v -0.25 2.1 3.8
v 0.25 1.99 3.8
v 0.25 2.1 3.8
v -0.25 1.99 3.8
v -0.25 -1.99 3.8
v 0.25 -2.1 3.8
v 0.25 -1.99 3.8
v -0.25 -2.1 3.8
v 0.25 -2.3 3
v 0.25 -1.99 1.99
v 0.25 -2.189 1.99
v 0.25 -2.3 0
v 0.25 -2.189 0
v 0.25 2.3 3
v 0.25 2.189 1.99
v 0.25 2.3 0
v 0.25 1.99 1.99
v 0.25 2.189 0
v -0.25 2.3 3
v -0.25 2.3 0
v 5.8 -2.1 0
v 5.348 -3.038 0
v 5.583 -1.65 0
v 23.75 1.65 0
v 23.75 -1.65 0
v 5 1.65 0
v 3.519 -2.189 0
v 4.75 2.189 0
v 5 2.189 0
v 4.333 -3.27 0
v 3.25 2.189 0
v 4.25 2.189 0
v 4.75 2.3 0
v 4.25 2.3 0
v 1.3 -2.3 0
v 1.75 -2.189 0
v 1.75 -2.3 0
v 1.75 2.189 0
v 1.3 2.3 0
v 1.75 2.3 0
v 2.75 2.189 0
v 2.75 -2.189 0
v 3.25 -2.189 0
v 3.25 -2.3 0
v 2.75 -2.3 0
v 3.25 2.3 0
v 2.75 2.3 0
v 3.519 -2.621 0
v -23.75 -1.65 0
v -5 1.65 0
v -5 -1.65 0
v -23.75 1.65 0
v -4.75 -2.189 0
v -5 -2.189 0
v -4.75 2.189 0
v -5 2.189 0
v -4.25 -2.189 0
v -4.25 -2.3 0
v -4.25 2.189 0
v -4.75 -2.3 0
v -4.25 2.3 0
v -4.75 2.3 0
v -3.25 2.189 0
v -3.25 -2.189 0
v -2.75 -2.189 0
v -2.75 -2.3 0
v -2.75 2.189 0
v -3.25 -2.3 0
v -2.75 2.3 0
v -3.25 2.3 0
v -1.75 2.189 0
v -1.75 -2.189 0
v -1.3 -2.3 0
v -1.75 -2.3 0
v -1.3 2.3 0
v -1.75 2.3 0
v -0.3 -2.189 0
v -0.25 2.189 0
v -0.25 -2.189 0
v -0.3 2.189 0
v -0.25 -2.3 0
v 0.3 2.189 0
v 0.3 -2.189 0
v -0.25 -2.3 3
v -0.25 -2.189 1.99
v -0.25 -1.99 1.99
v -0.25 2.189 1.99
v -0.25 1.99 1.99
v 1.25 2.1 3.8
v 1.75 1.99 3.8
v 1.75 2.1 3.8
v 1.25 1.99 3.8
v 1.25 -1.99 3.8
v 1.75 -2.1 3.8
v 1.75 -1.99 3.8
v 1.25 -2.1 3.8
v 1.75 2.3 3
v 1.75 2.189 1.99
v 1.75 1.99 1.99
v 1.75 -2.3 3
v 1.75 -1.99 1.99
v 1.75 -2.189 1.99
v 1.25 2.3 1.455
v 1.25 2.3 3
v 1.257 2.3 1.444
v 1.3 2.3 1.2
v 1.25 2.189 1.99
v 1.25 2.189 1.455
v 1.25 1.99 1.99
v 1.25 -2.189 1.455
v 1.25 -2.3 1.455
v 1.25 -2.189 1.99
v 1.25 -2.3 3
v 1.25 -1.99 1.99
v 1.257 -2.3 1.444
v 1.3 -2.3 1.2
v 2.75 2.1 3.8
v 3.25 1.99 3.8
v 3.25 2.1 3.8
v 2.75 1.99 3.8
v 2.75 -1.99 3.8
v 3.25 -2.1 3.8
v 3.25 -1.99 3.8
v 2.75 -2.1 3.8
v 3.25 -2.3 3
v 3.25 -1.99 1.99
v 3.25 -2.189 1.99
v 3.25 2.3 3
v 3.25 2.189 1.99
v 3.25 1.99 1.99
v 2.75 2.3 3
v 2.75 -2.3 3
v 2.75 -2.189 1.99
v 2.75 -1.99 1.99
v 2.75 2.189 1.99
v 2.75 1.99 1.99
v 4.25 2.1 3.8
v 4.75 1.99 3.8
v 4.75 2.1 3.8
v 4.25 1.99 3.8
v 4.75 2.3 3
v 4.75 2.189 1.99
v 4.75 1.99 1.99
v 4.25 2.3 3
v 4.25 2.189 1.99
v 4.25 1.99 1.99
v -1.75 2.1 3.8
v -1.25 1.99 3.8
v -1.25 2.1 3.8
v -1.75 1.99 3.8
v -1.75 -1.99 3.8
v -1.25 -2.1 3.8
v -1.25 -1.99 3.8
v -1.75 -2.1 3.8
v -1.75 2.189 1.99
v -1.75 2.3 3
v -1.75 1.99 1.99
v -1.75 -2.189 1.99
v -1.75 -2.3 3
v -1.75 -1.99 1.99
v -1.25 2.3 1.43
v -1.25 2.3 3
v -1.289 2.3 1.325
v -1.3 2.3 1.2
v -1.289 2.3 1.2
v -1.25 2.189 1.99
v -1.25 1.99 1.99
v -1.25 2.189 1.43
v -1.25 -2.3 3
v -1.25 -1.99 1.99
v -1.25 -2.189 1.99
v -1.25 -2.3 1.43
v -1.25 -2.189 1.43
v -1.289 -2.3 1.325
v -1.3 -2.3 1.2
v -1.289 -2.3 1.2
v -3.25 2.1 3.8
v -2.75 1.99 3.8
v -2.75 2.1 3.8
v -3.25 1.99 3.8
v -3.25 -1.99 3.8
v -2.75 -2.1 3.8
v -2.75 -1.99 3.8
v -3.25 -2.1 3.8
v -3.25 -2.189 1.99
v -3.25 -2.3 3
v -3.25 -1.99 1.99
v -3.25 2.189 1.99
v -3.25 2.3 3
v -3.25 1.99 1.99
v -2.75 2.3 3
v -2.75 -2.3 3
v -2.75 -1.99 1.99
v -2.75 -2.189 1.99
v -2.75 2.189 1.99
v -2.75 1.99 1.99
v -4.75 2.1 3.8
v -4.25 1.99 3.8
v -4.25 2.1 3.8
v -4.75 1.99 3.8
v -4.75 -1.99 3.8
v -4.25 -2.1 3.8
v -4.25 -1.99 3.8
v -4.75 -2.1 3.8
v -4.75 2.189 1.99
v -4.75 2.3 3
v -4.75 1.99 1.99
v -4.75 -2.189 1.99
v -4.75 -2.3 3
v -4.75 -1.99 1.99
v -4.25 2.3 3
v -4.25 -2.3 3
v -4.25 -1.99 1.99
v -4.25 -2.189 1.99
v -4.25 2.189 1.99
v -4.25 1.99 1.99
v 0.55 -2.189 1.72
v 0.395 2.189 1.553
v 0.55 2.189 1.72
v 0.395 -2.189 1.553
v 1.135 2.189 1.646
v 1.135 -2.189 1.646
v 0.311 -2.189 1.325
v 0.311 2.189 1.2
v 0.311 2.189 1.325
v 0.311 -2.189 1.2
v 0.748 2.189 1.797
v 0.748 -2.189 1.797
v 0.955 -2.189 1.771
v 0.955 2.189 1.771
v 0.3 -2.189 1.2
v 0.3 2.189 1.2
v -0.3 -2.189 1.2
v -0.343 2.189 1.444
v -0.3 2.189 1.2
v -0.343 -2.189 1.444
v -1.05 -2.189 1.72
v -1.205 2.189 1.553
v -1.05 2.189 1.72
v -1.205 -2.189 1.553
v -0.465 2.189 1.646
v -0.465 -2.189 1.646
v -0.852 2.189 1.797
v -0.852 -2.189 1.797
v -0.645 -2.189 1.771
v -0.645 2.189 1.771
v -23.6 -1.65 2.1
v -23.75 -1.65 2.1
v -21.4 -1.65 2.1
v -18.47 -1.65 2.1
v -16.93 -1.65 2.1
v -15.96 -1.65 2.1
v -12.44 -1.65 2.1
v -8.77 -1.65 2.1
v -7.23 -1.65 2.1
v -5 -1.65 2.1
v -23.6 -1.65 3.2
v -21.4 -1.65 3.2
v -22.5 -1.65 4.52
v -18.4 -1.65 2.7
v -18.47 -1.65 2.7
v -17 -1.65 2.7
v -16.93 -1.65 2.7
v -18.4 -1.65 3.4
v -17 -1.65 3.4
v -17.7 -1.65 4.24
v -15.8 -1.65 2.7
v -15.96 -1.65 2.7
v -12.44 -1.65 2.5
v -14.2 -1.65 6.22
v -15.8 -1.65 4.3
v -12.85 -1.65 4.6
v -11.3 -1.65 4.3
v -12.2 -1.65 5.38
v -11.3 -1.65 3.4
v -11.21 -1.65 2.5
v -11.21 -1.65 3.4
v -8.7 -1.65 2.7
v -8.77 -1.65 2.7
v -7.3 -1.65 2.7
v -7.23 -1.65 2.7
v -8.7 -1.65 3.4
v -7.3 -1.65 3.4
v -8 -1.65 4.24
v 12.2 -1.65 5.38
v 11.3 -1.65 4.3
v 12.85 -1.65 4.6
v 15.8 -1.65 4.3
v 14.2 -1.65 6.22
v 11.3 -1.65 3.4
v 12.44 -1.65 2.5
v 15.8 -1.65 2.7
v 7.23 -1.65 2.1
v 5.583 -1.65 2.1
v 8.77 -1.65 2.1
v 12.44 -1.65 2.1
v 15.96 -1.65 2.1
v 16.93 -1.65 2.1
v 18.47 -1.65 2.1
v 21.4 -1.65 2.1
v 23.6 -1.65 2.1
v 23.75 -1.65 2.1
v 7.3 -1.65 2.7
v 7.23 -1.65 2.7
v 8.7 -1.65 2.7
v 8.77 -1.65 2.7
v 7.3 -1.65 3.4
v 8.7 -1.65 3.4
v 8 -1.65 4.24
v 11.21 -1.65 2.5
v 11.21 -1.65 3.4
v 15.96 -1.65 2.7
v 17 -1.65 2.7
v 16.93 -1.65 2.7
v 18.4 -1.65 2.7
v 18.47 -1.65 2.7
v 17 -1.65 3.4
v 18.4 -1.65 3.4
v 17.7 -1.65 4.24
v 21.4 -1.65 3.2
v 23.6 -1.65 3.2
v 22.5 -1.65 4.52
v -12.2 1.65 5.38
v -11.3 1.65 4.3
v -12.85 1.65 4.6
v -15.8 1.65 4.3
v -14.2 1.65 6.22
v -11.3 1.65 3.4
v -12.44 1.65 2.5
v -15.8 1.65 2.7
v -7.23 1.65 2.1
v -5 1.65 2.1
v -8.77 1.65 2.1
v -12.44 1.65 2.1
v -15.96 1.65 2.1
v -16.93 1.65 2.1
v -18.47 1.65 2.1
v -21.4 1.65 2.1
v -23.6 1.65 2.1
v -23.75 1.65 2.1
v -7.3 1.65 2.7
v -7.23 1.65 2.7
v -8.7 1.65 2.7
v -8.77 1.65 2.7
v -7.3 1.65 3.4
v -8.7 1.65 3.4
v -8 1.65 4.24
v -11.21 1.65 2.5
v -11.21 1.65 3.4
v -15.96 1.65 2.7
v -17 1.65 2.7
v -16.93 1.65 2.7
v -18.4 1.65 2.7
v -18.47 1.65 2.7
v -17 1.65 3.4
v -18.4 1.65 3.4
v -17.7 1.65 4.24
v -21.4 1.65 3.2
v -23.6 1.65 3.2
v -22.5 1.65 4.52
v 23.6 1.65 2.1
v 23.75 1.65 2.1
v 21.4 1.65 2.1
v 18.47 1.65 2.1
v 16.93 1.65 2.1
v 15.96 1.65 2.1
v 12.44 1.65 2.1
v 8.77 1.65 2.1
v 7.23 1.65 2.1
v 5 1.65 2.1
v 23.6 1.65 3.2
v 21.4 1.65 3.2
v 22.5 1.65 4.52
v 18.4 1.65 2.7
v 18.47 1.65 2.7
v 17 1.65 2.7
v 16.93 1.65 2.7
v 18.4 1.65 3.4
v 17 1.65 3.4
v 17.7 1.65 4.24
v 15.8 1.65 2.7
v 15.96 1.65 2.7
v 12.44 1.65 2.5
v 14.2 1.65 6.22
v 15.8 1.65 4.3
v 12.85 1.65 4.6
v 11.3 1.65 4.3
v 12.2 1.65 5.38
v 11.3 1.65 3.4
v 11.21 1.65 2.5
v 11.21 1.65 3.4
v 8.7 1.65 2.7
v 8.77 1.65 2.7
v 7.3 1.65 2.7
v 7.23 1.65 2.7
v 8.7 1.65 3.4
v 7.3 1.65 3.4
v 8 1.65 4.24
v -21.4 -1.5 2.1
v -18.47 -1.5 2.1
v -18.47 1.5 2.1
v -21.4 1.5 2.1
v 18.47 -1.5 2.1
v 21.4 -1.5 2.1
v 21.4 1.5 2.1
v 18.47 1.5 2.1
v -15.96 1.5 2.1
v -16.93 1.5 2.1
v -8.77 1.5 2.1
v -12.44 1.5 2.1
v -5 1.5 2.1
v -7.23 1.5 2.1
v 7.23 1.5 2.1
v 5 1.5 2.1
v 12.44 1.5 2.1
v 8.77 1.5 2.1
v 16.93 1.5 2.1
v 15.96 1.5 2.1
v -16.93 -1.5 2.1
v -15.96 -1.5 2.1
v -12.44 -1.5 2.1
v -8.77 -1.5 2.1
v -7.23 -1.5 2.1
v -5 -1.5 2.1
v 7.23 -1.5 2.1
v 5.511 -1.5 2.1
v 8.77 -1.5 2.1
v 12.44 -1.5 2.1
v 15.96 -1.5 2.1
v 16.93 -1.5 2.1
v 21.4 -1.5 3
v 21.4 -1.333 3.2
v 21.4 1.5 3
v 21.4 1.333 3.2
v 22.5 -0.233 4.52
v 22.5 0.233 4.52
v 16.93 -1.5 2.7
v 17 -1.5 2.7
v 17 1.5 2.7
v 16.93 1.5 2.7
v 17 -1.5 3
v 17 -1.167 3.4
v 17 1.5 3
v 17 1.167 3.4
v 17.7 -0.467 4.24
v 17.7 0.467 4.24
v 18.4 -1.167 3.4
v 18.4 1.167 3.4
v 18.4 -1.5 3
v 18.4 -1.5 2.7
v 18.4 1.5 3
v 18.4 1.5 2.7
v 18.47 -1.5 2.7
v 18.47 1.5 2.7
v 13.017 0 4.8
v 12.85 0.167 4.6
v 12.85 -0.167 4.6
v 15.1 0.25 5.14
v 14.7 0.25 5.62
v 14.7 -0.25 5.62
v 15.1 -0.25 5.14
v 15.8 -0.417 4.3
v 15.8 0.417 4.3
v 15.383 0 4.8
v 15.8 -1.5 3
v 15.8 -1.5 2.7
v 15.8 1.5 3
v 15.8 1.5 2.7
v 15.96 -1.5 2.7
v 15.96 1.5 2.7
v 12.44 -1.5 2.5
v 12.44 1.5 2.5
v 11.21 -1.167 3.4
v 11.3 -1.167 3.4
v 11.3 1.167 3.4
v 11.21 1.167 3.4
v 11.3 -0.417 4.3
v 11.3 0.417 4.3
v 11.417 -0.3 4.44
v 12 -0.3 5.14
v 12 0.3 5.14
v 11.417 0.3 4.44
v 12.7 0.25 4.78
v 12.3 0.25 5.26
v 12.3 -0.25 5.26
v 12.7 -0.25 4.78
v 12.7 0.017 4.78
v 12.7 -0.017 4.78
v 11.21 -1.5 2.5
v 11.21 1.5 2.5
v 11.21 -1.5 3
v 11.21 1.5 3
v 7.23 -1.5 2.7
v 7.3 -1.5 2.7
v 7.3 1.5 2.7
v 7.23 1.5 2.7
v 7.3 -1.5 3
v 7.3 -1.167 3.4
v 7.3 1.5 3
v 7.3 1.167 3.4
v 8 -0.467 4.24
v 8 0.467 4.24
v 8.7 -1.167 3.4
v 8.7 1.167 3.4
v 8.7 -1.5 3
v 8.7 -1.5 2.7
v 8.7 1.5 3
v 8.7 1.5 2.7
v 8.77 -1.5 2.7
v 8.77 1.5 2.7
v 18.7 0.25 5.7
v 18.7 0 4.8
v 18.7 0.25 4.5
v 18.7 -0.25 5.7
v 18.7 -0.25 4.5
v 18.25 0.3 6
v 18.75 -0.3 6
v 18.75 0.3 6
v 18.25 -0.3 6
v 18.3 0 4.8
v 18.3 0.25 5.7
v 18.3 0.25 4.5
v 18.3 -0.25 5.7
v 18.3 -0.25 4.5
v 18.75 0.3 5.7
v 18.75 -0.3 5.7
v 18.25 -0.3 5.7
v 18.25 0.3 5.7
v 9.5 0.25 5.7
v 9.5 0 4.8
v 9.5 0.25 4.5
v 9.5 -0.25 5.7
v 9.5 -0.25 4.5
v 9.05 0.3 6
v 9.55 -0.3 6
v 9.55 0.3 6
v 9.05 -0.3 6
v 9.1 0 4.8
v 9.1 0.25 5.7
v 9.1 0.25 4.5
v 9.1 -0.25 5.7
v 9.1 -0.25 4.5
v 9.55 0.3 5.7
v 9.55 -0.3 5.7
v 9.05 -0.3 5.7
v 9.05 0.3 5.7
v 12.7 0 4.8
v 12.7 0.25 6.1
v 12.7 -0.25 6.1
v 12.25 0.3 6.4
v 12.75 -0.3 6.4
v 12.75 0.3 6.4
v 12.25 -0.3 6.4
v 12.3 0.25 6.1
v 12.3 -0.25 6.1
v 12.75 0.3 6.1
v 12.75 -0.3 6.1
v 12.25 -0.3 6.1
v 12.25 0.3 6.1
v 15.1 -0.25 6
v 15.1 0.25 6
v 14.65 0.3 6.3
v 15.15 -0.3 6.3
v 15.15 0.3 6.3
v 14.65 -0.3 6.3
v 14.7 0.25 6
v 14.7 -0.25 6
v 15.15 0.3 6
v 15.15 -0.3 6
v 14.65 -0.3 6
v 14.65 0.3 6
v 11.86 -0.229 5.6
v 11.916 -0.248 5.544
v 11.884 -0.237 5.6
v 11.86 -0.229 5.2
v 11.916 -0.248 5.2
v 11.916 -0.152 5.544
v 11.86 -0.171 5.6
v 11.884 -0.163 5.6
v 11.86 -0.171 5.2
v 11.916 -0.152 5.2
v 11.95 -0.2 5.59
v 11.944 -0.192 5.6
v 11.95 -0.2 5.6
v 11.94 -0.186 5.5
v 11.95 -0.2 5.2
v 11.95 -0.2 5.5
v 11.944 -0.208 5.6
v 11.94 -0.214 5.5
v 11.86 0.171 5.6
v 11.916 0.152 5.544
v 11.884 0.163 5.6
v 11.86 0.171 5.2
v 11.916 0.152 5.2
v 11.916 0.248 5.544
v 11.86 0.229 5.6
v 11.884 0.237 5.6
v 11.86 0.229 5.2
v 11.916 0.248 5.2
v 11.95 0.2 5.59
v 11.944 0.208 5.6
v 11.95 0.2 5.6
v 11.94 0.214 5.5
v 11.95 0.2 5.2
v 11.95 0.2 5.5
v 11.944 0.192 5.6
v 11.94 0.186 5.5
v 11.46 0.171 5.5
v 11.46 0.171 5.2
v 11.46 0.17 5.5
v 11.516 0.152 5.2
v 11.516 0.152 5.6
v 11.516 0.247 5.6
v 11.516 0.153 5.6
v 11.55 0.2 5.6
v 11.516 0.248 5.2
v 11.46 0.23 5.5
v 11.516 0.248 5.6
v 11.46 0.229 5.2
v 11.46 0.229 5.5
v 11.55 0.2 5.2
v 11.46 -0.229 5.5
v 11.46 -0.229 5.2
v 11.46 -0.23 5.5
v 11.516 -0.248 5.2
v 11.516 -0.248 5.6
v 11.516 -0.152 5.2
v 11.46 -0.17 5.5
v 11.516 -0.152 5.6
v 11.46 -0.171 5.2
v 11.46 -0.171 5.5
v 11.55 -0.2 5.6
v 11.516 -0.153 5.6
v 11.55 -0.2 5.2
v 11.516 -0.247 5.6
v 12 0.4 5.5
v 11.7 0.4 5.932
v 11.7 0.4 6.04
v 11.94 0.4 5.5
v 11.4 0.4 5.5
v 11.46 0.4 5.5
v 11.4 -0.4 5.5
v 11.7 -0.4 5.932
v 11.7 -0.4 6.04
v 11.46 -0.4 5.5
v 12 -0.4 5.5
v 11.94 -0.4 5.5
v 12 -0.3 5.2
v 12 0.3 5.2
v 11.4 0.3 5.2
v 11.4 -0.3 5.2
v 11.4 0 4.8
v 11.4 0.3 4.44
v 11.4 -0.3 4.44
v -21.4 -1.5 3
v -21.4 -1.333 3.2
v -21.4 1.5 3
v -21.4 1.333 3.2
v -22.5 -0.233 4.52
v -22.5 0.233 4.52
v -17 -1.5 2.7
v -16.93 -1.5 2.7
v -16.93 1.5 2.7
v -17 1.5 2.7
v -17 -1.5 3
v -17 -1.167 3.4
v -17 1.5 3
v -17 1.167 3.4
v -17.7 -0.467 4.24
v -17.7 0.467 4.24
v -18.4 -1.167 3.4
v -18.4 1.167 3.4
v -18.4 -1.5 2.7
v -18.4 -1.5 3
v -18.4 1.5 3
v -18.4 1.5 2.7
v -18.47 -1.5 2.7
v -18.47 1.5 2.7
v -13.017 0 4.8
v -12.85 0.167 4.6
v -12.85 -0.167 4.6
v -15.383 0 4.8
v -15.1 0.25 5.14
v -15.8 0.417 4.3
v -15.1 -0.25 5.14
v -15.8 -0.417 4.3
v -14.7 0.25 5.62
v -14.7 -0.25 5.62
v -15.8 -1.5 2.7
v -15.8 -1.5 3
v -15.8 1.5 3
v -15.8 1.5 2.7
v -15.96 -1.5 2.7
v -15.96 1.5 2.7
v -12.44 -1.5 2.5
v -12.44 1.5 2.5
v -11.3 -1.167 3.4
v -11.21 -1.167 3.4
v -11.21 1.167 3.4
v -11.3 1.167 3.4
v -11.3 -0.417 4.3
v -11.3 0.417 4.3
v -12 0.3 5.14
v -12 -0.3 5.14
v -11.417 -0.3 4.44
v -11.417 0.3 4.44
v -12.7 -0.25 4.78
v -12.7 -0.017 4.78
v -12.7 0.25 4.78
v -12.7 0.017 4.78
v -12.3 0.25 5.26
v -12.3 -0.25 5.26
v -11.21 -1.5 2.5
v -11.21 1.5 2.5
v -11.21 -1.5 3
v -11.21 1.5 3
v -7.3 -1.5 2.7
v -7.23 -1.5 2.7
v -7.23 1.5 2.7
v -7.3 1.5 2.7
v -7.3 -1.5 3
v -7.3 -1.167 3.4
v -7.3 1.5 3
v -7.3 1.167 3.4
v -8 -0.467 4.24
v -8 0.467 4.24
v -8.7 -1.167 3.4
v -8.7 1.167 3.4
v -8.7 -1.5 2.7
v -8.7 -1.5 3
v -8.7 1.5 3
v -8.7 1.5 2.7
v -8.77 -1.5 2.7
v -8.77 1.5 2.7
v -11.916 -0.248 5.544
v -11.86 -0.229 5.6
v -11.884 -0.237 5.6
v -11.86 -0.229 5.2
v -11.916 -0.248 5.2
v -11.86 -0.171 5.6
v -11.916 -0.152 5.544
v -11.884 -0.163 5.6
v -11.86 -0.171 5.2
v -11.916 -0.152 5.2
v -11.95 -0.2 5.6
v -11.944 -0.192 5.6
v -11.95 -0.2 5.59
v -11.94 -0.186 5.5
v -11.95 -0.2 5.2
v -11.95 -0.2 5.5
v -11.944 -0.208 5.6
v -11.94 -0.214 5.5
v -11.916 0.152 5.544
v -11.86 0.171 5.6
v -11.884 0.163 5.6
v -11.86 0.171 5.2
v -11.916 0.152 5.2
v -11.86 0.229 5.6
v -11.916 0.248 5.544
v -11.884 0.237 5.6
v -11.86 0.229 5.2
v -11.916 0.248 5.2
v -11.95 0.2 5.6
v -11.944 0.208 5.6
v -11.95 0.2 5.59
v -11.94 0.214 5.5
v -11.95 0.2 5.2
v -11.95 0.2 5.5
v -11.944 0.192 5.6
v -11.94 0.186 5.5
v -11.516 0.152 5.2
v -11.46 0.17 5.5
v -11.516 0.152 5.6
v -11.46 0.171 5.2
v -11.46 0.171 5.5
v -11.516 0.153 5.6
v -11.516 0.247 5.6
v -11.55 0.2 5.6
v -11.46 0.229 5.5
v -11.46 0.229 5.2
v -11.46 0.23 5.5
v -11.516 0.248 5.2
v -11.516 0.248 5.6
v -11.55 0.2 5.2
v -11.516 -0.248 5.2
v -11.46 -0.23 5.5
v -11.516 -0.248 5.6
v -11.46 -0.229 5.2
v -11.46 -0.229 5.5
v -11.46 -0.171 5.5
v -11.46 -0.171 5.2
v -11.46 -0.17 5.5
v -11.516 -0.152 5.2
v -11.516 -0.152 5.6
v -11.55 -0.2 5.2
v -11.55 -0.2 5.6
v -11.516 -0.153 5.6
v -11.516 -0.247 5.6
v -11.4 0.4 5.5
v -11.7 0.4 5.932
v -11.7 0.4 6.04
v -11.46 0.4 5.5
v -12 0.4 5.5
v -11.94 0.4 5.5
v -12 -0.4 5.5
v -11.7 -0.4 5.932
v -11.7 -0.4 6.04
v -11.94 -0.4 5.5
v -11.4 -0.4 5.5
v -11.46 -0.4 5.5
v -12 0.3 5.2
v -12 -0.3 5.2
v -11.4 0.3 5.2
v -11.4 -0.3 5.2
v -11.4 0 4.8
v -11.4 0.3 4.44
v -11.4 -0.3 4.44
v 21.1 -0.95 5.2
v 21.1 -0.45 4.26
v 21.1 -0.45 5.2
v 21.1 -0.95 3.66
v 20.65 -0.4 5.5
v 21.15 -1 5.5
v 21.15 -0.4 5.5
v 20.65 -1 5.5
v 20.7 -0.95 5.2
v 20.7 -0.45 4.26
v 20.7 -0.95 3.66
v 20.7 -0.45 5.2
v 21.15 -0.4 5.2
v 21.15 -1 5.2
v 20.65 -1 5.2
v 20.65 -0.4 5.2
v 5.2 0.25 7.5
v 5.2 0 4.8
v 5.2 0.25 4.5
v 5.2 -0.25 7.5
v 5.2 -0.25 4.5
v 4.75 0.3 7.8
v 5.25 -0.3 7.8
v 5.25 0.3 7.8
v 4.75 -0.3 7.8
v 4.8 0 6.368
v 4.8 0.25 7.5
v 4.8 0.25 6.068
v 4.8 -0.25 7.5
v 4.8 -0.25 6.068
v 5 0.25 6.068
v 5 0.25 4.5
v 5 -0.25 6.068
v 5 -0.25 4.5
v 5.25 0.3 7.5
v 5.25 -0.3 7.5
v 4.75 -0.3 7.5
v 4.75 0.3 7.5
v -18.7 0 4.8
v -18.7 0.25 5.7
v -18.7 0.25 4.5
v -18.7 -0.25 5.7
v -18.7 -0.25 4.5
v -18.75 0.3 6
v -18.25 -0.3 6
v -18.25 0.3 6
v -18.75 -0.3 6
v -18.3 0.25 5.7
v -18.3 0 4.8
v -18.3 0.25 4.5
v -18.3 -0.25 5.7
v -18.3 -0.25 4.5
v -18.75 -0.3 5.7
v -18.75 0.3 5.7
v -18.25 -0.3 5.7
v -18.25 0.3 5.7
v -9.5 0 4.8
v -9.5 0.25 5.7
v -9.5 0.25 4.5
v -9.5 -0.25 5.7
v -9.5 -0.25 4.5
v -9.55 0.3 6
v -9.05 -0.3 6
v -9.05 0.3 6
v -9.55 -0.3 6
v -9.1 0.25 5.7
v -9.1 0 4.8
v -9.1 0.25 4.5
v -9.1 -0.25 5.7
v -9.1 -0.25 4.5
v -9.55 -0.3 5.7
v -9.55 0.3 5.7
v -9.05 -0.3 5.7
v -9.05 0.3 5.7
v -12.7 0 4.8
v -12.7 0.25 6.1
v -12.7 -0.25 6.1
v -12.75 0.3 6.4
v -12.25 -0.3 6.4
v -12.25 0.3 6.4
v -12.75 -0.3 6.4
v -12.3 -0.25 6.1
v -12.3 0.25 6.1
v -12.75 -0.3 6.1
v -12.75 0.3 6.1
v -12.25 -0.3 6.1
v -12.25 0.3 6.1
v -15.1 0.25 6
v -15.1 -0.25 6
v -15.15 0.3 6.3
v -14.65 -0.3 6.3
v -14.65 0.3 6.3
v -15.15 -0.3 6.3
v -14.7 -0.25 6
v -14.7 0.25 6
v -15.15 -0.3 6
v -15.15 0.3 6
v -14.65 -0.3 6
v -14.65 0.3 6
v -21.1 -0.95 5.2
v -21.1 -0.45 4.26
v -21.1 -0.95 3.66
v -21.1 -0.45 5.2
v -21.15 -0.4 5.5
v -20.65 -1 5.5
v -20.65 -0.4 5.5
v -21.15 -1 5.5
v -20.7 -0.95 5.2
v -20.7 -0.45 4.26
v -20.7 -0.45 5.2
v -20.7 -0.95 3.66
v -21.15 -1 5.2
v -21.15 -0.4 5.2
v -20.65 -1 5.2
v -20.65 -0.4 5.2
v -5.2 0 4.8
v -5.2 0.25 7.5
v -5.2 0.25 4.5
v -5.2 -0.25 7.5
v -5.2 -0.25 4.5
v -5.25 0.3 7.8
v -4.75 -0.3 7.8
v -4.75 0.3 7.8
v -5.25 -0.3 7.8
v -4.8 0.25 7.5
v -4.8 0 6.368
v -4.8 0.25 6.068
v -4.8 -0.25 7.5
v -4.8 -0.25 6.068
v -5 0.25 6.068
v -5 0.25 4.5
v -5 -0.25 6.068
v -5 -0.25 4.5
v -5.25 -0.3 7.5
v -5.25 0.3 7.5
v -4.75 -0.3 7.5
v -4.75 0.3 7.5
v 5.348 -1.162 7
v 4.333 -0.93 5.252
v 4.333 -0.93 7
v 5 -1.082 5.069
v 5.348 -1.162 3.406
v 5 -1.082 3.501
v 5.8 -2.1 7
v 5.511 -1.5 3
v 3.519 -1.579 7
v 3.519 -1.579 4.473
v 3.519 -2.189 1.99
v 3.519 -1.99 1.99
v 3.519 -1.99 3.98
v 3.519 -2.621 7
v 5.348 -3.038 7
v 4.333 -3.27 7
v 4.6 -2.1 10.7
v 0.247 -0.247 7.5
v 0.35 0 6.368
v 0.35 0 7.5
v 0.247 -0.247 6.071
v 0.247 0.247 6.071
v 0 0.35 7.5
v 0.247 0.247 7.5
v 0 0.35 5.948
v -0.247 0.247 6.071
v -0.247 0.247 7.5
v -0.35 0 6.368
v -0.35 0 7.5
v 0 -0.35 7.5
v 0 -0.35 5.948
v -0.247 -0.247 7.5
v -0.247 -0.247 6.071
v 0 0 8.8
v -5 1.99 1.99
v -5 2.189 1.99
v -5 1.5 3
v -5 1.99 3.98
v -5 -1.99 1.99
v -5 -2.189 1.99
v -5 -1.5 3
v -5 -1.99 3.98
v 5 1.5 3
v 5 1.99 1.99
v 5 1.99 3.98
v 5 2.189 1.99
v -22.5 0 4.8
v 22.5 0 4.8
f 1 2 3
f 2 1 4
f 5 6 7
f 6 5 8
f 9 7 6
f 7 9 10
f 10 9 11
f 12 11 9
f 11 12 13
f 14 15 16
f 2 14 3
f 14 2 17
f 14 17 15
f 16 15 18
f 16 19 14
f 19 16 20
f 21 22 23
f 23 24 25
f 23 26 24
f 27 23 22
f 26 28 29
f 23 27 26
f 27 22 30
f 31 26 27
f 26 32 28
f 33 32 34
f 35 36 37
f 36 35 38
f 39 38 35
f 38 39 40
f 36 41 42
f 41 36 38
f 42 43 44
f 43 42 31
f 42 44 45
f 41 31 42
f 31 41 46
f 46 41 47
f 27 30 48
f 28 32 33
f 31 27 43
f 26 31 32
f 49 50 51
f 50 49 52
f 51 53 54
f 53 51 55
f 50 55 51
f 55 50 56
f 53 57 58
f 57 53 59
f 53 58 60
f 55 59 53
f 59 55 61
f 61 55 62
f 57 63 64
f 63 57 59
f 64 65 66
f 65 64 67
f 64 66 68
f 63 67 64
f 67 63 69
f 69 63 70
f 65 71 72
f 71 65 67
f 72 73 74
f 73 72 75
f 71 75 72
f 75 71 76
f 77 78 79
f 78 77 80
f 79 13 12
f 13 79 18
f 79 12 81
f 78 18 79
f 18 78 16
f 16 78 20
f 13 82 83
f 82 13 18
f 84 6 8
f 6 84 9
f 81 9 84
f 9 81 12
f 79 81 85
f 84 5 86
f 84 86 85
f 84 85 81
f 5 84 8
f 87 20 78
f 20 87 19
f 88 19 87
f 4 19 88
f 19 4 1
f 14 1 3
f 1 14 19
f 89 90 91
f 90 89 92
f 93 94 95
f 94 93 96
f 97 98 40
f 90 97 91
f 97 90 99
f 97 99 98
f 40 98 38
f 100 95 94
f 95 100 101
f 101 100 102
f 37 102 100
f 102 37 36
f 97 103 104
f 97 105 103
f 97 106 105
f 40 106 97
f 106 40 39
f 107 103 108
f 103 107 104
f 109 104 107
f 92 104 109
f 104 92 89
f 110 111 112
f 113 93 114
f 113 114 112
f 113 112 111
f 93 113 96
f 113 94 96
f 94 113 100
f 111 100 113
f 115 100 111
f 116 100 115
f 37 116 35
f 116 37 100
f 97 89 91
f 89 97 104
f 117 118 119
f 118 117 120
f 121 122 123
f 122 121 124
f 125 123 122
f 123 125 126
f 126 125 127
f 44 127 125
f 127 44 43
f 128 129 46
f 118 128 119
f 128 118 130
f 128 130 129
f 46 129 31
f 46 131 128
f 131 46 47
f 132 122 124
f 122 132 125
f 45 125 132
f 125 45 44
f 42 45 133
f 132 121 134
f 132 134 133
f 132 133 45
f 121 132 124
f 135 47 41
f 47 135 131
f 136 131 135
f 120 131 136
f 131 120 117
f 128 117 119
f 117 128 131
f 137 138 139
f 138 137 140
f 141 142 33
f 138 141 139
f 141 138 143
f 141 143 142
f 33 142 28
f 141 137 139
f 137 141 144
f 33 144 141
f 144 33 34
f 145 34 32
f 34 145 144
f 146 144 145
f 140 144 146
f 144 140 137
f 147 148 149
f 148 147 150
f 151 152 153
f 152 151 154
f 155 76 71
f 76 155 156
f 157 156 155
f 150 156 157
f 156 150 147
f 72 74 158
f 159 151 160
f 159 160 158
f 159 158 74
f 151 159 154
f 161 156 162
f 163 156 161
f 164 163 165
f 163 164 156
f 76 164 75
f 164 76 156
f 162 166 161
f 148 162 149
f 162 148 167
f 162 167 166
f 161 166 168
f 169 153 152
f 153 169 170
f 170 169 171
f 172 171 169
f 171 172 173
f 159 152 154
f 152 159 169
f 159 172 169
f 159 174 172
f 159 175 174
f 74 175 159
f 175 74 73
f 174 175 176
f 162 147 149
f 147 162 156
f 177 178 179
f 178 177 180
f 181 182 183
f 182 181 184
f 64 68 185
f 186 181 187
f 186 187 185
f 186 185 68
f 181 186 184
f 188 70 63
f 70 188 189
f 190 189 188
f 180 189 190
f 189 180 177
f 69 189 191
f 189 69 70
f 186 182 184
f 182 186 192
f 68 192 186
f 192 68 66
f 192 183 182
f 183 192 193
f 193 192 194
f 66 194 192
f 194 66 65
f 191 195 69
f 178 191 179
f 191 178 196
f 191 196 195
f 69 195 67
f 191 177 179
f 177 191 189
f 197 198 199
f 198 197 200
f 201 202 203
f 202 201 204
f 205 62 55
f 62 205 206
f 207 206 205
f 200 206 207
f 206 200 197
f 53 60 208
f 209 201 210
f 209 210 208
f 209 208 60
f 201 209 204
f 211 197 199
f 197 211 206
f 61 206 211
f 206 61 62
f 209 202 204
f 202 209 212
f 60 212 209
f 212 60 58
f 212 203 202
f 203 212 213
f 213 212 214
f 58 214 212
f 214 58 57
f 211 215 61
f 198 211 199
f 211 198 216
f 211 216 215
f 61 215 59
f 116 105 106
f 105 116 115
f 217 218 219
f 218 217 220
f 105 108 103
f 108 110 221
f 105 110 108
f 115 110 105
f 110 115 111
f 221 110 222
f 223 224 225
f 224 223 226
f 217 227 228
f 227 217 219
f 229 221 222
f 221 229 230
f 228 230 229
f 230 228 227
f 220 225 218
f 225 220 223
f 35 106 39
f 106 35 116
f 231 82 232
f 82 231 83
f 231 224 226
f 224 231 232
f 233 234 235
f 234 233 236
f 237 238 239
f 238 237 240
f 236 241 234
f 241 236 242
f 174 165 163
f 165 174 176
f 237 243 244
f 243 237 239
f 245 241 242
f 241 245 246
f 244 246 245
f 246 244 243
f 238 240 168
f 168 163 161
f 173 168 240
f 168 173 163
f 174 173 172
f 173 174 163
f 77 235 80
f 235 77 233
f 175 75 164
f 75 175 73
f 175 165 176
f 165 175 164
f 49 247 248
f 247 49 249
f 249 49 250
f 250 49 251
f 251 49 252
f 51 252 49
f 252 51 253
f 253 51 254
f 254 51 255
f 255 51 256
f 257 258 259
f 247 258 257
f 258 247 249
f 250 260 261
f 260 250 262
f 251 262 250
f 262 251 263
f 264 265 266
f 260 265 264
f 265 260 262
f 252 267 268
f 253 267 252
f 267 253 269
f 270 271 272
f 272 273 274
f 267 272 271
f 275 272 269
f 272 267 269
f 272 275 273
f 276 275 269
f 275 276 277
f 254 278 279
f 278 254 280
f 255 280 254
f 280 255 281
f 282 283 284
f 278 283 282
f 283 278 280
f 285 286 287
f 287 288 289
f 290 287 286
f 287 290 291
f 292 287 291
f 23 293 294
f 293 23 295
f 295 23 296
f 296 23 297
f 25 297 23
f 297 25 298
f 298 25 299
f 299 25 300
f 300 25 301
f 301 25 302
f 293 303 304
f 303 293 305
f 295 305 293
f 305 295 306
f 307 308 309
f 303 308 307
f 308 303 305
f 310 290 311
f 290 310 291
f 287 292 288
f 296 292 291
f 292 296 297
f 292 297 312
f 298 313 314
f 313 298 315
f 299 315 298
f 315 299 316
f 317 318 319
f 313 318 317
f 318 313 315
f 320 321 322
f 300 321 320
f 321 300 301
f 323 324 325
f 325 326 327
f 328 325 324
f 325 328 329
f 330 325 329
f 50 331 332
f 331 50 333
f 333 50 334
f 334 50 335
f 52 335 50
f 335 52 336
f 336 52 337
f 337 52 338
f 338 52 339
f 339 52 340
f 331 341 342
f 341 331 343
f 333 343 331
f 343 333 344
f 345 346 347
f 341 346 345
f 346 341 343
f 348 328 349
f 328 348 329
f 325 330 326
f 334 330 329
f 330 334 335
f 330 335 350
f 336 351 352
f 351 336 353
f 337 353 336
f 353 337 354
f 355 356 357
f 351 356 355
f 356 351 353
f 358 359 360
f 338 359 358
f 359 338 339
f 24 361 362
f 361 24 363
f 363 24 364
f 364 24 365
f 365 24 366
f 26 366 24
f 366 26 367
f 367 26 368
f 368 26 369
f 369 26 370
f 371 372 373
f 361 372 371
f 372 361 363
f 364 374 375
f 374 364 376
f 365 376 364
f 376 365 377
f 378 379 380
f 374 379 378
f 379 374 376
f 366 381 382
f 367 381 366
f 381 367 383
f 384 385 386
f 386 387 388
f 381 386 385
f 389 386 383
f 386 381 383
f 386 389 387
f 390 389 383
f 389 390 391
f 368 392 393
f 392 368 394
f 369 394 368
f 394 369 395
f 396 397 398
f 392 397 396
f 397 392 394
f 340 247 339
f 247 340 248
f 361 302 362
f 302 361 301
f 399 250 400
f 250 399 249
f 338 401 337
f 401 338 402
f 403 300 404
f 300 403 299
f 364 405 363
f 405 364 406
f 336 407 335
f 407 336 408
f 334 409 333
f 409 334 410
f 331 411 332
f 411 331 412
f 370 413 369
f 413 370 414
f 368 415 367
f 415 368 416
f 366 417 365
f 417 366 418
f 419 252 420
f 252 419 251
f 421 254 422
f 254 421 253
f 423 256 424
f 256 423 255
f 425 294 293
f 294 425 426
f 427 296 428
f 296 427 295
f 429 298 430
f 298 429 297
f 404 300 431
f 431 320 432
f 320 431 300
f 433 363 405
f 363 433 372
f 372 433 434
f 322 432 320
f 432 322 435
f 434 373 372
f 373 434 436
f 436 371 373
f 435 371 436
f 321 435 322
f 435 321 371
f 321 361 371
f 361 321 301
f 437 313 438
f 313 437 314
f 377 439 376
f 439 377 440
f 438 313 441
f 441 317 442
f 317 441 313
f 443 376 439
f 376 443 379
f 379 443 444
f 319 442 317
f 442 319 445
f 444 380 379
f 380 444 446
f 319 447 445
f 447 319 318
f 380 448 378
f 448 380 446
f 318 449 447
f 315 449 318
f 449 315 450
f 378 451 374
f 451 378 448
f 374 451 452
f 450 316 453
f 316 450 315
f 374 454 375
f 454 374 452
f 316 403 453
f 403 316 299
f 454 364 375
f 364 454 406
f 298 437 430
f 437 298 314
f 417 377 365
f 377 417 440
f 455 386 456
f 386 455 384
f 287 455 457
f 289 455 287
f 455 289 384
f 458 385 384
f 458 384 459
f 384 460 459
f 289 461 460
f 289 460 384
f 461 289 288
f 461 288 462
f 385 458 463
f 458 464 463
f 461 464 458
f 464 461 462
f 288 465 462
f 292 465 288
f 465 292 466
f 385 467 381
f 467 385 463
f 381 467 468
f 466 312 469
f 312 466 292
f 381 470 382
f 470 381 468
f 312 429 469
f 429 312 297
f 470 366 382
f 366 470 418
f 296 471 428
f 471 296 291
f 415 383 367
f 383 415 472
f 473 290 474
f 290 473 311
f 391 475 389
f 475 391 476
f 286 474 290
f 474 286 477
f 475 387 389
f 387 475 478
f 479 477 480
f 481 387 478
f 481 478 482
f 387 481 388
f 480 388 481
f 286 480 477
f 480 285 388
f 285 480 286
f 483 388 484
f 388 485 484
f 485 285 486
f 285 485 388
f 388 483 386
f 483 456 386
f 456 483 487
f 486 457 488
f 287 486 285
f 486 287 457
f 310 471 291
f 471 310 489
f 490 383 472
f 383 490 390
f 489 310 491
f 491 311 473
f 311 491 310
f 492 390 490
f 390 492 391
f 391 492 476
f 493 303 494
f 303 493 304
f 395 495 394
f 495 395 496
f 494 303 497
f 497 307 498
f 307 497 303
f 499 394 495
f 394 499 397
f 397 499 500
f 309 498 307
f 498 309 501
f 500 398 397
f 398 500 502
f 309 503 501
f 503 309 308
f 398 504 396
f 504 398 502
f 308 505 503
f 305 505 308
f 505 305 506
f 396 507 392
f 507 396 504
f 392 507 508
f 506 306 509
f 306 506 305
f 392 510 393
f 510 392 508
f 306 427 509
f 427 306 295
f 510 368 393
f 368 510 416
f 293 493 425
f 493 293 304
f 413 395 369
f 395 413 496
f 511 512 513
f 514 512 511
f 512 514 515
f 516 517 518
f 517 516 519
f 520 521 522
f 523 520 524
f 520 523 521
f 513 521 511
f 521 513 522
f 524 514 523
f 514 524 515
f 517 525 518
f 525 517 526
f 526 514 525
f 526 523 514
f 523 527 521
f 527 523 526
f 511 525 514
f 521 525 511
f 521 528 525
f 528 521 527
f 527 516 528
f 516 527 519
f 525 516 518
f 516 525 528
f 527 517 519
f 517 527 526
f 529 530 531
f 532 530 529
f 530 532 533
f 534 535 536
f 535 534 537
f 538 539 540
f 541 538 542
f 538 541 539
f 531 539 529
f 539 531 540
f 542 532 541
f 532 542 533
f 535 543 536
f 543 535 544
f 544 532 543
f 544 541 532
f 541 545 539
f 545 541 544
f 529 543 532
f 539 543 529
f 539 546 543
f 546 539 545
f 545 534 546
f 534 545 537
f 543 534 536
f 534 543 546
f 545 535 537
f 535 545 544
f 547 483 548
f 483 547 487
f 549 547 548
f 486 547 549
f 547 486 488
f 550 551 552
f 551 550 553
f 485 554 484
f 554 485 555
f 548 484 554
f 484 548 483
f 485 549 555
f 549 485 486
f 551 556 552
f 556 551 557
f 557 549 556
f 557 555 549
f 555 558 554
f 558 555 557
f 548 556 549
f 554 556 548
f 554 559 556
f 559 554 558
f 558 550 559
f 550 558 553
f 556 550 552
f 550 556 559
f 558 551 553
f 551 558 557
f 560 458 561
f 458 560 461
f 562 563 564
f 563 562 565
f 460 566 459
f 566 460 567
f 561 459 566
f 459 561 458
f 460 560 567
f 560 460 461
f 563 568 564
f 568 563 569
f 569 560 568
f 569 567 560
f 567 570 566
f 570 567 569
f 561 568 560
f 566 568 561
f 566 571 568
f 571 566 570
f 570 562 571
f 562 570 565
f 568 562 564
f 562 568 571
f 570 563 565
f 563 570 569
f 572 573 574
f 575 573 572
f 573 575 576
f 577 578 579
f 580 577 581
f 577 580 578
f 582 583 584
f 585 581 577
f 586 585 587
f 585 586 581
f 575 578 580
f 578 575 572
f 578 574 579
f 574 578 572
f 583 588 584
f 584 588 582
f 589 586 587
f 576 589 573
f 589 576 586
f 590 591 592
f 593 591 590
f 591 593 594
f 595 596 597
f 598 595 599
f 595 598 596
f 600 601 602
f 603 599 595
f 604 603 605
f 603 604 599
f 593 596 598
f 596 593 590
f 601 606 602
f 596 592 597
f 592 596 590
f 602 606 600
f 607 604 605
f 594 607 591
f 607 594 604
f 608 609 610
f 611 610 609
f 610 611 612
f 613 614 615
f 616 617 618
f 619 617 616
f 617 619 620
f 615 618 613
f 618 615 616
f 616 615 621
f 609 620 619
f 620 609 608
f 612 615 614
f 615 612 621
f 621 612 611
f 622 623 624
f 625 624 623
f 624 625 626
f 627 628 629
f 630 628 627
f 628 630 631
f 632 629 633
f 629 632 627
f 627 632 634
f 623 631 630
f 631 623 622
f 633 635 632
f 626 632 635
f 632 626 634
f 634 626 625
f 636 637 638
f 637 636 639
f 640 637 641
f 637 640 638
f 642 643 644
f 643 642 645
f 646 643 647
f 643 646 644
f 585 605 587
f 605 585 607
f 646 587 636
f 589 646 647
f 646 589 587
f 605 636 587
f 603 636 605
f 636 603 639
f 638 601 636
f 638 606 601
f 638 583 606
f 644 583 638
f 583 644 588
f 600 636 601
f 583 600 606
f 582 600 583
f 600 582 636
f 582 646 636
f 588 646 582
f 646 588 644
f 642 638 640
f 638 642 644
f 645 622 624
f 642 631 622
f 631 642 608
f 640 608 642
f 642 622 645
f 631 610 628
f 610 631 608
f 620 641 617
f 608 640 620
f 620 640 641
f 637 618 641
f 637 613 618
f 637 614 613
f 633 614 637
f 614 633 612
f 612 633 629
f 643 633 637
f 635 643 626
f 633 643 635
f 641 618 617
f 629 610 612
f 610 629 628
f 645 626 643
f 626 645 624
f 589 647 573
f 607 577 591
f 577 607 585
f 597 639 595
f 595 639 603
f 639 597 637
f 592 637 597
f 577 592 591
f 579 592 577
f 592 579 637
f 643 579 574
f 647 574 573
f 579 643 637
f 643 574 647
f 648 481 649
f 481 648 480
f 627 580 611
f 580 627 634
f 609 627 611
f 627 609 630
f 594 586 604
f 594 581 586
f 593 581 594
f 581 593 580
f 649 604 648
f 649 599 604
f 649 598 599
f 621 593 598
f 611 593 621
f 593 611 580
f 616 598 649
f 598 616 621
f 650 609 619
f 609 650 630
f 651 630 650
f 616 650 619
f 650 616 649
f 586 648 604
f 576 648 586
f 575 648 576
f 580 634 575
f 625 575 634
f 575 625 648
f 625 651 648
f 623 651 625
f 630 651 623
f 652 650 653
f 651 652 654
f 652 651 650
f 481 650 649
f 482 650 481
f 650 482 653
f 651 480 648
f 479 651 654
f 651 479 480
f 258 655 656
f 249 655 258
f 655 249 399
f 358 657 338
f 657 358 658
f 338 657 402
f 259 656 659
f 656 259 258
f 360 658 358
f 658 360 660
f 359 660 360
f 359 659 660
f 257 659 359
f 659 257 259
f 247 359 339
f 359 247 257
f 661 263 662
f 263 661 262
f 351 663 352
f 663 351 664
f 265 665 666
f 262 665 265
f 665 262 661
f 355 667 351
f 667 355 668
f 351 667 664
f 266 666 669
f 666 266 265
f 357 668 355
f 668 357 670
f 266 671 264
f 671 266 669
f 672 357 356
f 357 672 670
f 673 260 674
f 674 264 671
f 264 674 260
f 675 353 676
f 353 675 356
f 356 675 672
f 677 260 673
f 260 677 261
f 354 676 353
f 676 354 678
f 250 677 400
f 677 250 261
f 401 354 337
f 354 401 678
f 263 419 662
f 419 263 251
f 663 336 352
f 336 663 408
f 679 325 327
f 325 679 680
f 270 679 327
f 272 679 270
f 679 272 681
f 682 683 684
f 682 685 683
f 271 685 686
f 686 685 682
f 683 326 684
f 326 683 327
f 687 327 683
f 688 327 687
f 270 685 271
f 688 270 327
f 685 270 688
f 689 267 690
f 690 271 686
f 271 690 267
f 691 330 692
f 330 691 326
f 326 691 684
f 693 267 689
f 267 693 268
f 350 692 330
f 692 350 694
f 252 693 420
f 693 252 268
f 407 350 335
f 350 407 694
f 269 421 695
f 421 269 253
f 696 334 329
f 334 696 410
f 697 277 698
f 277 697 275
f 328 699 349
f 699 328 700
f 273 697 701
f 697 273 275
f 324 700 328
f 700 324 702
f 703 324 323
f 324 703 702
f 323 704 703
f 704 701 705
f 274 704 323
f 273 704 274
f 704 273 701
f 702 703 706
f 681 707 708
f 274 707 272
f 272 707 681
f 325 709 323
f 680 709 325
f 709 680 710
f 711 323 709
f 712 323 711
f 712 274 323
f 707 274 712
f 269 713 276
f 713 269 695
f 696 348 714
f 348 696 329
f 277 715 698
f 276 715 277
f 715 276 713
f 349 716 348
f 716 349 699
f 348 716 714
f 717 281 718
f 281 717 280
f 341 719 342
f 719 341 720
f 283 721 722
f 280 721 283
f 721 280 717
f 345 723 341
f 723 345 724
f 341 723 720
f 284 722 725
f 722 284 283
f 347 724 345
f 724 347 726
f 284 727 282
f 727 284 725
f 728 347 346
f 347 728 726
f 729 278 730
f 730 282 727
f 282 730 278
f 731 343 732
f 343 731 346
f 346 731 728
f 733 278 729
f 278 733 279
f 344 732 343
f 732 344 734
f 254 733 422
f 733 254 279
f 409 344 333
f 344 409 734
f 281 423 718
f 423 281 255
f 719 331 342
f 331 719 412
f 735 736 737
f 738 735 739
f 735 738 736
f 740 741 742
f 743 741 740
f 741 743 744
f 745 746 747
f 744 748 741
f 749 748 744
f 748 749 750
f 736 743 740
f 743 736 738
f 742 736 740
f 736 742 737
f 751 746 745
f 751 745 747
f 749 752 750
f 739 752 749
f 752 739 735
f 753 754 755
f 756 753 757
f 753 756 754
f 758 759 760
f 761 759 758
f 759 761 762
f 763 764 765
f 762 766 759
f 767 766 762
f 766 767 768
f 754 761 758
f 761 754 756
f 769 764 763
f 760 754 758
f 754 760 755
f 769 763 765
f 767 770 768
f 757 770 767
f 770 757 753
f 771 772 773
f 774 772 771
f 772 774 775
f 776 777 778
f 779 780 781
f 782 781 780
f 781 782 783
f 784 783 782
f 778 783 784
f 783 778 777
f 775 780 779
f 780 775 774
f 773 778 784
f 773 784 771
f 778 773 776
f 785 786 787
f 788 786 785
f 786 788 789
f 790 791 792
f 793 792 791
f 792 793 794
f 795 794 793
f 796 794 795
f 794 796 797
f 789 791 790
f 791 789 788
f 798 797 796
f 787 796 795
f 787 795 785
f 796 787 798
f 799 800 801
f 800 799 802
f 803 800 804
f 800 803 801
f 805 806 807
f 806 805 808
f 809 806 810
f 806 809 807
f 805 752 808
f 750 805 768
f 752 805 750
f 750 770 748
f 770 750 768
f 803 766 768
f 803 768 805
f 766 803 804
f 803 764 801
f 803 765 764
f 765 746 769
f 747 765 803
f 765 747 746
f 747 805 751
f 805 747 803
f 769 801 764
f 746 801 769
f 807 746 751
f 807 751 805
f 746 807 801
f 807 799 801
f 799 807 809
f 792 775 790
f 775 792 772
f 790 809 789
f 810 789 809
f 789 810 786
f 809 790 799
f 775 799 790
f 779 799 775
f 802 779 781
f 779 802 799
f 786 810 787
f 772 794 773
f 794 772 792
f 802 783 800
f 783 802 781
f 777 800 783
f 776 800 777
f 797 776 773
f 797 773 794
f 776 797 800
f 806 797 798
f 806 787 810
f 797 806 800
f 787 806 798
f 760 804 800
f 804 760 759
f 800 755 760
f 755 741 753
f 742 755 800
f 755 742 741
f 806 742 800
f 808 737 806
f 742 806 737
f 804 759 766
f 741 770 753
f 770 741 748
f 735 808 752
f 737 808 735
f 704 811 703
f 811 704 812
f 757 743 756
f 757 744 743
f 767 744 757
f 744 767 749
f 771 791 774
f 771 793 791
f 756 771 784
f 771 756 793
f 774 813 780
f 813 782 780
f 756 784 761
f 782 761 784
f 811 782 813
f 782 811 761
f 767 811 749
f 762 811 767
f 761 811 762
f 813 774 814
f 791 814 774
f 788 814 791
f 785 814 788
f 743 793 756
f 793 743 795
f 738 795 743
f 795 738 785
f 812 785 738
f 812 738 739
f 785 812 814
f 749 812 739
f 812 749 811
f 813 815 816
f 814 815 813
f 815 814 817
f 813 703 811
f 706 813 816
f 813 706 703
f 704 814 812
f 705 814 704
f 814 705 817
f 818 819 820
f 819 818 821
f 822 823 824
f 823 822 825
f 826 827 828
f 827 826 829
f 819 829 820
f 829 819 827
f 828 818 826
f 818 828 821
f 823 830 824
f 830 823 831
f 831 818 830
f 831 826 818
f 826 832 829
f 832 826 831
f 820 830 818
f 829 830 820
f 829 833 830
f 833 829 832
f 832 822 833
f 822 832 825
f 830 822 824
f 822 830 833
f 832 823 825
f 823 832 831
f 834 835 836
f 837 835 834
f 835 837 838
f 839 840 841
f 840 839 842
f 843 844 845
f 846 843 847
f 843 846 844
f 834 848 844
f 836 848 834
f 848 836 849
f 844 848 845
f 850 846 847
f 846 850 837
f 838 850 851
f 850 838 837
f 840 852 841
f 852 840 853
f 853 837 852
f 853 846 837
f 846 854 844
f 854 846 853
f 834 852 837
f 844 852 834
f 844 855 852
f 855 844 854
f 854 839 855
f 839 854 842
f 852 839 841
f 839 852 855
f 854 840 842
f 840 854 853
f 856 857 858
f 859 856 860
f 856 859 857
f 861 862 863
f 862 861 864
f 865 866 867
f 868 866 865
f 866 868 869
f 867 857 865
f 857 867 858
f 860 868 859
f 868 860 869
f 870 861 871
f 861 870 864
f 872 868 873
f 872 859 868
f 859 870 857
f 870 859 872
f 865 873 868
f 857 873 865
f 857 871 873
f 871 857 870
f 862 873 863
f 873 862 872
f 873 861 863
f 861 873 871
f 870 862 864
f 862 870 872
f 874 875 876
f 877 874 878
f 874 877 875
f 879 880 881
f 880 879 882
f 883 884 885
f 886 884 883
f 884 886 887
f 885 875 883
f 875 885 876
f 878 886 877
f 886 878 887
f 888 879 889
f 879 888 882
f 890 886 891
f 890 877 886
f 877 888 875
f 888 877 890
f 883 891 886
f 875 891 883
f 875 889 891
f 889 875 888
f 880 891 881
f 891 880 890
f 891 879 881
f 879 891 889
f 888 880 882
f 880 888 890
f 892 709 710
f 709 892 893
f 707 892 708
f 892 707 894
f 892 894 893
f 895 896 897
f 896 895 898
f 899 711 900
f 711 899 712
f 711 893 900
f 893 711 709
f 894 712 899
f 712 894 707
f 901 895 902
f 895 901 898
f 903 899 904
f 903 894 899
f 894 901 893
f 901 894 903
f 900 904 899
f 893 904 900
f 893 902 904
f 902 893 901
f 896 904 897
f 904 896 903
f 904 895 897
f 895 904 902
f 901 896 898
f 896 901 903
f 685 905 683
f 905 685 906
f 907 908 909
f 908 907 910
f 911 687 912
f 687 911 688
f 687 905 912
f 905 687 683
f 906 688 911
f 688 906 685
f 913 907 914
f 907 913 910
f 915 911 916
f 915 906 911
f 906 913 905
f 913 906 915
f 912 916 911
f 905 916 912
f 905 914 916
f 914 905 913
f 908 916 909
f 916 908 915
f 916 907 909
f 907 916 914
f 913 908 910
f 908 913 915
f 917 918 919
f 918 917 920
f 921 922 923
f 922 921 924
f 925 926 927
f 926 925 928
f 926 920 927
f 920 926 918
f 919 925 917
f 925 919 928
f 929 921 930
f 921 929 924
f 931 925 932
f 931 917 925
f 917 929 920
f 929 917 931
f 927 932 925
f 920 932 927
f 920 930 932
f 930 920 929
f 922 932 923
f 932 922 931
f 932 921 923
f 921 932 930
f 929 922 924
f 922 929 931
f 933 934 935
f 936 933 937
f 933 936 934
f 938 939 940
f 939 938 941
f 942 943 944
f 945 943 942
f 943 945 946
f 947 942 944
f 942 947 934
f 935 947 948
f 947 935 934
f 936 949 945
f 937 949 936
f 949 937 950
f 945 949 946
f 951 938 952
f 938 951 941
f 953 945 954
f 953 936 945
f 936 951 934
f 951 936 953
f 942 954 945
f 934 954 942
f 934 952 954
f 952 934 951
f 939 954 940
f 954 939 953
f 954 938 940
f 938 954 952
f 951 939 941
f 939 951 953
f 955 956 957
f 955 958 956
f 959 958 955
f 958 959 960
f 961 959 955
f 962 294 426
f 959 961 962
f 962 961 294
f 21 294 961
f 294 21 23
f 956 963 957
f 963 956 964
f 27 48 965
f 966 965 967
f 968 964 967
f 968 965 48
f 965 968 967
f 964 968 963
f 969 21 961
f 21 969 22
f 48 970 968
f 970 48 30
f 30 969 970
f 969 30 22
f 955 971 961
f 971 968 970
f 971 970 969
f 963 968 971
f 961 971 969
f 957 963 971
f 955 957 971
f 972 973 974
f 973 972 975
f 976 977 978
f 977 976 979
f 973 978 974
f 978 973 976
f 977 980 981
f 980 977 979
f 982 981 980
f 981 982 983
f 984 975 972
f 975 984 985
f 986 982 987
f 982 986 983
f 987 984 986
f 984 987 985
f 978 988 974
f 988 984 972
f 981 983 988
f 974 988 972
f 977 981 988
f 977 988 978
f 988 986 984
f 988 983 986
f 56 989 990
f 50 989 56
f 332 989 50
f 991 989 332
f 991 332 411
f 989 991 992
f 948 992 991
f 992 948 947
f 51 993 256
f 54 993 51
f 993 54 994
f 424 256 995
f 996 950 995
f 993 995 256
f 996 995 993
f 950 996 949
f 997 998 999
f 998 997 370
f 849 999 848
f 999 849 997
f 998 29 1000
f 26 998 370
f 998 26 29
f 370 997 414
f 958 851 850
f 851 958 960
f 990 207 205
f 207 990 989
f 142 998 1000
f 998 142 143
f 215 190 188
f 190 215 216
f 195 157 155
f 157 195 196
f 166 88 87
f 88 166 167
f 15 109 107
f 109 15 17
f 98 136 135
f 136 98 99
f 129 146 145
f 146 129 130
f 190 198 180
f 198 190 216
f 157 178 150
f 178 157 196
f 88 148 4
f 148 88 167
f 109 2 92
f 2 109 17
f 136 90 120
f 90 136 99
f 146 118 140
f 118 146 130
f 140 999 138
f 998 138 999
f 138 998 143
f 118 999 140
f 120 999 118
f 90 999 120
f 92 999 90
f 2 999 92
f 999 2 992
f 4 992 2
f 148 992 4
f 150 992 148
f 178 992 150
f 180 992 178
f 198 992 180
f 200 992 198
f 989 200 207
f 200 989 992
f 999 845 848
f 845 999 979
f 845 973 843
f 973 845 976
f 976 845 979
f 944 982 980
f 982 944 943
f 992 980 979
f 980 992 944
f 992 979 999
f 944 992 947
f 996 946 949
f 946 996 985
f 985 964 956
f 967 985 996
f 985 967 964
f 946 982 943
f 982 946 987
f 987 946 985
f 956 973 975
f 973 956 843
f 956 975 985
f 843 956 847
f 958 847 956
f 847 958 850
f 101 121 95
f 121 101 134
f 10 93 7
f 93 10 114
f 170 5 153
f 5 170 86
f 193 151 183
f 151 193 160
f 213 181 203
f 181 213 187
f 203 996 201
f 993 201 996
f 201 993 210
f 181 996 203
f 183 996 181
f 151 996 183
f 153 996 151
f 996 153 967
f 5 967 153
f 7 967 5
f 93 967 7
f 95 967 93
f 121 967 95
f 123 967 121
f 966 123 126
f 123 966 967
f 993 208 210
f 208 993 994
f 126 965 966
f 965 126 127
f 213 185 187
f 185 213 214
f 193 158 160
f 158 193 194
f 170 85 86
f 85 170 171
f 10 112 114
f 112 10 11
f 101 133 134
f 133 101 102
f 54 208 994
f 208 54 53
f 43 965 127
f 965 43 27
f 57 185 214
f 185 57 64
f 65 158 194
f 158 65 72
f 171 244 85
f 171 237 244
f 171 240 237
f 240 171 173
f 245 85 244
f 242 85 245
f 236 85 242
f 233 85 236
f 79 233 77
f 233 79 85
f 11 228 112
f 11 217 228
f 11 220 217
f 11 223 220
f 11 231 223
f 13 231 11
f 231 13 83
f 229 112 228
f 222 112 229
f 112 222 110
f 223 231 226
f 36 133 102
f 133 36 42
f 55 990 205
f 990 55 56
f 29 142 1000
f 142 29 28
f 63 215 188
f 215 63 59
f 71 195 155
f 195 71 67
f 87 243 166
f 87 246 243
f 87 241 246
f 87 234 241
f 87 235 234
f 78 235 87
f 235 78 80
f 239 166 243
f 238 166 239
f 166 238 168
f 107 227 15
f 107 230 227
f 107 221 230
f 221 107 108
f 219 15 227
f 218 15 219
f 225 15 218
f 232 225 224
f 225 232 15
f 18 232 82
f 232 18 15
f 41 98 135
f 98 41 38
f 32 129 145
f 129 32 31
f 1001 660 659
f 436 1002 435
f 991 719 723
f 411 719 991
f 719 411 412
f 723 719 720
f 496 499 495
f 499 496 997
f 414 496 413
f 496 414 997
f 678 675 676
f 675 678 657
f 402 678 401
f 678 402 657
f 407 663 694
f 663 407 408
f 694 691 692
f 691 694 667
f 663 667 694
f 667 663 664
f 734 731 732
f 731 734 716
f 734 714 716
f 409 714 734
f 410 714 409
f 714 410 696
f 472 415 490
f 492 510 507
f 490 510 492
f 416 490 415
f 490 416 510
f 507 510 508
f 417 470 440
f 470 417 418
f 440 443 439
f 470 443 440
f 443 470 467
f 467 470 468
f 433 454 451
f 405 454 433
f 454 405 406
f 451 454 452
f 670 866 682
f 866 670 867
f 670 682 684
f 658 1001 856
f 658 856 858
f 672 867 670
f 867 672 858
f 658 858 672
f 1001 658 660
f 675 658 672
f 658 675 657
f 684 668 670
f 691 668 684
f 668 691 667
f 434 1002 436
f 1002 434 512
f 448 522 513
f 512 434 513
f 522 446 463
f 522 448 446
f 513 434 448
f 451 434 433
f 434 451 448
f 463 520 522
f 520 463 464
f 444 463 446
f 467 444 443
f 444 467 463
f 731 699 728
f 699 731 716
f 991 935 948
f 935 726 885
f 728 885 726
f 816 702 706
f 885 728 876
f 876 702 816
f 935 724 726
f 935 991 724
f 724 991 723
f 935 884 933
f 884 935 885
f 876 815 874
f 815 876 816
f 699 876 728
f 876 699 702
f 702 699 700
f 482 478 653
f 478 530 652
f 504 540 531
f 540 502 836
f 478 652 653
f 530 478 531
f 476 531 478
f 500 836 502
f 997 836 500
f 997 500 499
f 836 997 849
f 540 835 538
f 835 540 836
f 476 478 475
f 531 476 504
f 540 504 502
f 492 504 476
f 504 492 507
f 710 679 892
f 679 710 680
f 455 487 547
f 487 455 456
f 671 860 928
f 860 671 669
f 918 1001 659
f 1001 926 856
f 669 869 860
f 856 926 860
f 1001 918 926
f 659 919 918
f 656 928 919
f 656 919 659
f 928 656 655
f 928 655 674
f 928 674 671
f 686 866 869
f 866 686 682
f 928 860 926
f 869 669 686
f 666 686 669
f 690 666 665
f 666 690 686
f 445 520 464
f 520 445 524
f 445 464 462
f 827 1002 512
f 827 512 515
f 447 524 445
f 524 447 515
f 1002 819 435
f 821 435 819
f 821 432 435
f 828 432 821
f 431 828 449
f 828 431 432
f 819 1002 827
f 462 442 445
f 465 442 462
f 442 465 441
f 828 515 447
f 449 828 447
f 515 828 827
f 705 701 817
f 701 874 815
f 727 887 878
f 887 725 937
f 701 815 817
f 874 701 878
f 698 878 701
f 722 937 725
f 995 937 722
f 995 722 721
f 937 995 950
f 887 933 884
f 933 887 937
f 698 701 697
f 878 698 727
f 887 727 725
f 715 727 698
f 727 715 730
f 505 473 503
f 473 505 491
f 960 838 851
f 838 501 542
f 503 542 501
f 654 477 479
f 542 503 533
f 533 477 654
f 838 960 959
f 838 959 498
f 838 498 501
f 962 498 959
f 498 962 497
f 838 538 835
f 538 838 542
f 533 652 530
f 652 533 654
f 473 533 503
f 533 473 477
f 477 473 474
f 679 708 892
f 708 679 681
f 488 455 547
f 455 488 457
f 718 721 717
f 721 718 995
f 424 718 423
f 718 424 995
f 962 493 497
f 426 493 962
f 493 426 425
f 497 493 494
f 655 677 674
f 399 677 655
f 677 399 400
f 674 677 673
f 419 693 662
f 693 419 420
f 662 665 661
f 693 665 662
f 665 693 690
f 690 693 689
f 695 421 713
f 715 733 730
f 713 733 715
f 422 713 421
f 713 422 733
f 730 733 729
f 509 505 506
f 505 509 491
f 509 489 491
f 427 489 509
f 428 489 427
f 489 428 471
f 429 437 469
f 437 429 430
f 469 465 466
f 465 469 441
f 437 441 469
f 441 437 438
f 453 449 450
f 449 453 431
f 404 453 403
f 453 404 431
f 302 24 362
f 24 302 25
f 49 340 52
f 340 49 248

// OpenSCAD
base_shape = [
[1.1, 0], [1.1, 1], [1, 1], [1, 2], //right side
[0, 3.2], //point
[-1, 2], [-1, 1], [-1.1, 1], [-1.1, 0]]; //left side

module pent(size, length) {
    translate([-length/2, 0, 0])
    rotate([90, 0, 0]) rotate([0, 90, 0])
    linear_extrude(length)
    scale(size) 
    polygon(base_shape, convexity=10);
}

module spire(h1, h2, d, sides) {
    cylinder(d=d, h=h1, $fn=sides);
    translate([0, 0, h1])
    cylinder(d1=d, d2=0, h=h2, $fn=sides)  ;
}

module building(){

pent(1.99, 10); //middle pent
pent(1.5, 45); //long pent
translate([4.6, -2.1, 0])
spire(7, 3.7, 2.4, 7); //big spire
spire(7.5, 1.3, 0.7, 8); //middle spire
//cylinder(h=8.9, d=0.2, $fn=3); //point of middle spire

module slats() {
    for (x = [0 : 3]) {
        translate([x * 1.5 -0.25, 0, 0])
        rotate([90, 0, 0]) rotate([0, 90, 0])
        linear_extrude(0.5)
        polygon([[2.3, 0], [2.3, 3], [2.1, 3.8], [-2.1, 3.8], [-2.3, 3], [-2.3, 0]], convexity=10);
    }
}
slats();
mirror([1, 0, 0]) slats();

chimneys = [
    //[position, height, centre offset]
    [5, 7.8, 0],
    [9.3, 6, 0],
    [12.5, 6.4, 0],
    [14.9, 6.3, 0],
    [18.5, 6, 0],
    [20.9, 5.5, 0.7]
];

module chimneys() {
    for (chimney = chimneys) {
        translate([chimney[0], -chimney[2], 0]) {
            translate([-0.4/2, -0.5/2, 0])
            cube([0.4, 0.5, chimney[1]]);
            translate([-0.5/2, -0.6/2, chimney[1] - 0.3])
            cube([0.5, 0.6, 0.3]);
        }
    }
}
chimneys();
mirror([1,0,0]) chimneys();

house_length = 3.3;
houses = [
    //[position, scale, raise]
    [22.5, 1.1, 1],
    [17.7, 0.7, 2],
    [14.2, 1.6, 1.1],
    [12.2, 0.9, 2.5],
    [  8, 0.7, 2],
];

module bell_tower() {
    translate([0, 0.8/2, 0])
    rotate([90, 0, 0])
    linear_extrude(0.8)
    scale(0.3)
    difference() {
        polygon([[1, 0], [0, 1.8], [-1, 0]], convexity=10);
        scale(0.8)
        polygon([[1, 0], [0, 1.8], [-1, 0]], convexity=10);
    }
}

module houses(){
    for (house = houses) {
        translate([house[0], 0, house[2]])
        rotate(90)
        pent(house[1], house_length);
    }
    // bell tower(s)
    translate([11.7, 0, 0]) {
        translate([0, 0, 5.5])
        bell_tower();
        for (t=[[1, -1], [1, 1], [-1, 1], [-1, -1]])
        translate([0.2*t[0], 0.2*t[1], 0])
        cylinder(d=0.1, h=5.6, $fn=5);
        translate([-0.6/2, -0.6/2, 0])
        cube([0.6, 0.6, 5.2]);
    }
}
houses();
mirror([1, 0, 0]) houses();

// cube fills up cavity at ends and makes red stripe more uniform height
translate([-23.75, -house_length/2, 0])
cube([47.5, house_length, 2.1]); // this determines its length
}

module arch() {
    w = 1;
    t = 6;
    h = 1.2;
    translate([0, t/2, 0])
    rotate([90, 0, 0]) {
        translate([0, h, 0])
        scale([1, 1.2, 1])
        cylinder(d=w, h=t, $fn=15);
        translate([-w/2, 0, 0])
        cube([w, h, t]);
    }
}

difference() {
    building();
    translate([0.8, 0, 0]) arch();
    translate([-0.8, 0, 0]) arch();
}


//translate([0,0,5.5])
//cube([47.5,0.1,11], center=true);
